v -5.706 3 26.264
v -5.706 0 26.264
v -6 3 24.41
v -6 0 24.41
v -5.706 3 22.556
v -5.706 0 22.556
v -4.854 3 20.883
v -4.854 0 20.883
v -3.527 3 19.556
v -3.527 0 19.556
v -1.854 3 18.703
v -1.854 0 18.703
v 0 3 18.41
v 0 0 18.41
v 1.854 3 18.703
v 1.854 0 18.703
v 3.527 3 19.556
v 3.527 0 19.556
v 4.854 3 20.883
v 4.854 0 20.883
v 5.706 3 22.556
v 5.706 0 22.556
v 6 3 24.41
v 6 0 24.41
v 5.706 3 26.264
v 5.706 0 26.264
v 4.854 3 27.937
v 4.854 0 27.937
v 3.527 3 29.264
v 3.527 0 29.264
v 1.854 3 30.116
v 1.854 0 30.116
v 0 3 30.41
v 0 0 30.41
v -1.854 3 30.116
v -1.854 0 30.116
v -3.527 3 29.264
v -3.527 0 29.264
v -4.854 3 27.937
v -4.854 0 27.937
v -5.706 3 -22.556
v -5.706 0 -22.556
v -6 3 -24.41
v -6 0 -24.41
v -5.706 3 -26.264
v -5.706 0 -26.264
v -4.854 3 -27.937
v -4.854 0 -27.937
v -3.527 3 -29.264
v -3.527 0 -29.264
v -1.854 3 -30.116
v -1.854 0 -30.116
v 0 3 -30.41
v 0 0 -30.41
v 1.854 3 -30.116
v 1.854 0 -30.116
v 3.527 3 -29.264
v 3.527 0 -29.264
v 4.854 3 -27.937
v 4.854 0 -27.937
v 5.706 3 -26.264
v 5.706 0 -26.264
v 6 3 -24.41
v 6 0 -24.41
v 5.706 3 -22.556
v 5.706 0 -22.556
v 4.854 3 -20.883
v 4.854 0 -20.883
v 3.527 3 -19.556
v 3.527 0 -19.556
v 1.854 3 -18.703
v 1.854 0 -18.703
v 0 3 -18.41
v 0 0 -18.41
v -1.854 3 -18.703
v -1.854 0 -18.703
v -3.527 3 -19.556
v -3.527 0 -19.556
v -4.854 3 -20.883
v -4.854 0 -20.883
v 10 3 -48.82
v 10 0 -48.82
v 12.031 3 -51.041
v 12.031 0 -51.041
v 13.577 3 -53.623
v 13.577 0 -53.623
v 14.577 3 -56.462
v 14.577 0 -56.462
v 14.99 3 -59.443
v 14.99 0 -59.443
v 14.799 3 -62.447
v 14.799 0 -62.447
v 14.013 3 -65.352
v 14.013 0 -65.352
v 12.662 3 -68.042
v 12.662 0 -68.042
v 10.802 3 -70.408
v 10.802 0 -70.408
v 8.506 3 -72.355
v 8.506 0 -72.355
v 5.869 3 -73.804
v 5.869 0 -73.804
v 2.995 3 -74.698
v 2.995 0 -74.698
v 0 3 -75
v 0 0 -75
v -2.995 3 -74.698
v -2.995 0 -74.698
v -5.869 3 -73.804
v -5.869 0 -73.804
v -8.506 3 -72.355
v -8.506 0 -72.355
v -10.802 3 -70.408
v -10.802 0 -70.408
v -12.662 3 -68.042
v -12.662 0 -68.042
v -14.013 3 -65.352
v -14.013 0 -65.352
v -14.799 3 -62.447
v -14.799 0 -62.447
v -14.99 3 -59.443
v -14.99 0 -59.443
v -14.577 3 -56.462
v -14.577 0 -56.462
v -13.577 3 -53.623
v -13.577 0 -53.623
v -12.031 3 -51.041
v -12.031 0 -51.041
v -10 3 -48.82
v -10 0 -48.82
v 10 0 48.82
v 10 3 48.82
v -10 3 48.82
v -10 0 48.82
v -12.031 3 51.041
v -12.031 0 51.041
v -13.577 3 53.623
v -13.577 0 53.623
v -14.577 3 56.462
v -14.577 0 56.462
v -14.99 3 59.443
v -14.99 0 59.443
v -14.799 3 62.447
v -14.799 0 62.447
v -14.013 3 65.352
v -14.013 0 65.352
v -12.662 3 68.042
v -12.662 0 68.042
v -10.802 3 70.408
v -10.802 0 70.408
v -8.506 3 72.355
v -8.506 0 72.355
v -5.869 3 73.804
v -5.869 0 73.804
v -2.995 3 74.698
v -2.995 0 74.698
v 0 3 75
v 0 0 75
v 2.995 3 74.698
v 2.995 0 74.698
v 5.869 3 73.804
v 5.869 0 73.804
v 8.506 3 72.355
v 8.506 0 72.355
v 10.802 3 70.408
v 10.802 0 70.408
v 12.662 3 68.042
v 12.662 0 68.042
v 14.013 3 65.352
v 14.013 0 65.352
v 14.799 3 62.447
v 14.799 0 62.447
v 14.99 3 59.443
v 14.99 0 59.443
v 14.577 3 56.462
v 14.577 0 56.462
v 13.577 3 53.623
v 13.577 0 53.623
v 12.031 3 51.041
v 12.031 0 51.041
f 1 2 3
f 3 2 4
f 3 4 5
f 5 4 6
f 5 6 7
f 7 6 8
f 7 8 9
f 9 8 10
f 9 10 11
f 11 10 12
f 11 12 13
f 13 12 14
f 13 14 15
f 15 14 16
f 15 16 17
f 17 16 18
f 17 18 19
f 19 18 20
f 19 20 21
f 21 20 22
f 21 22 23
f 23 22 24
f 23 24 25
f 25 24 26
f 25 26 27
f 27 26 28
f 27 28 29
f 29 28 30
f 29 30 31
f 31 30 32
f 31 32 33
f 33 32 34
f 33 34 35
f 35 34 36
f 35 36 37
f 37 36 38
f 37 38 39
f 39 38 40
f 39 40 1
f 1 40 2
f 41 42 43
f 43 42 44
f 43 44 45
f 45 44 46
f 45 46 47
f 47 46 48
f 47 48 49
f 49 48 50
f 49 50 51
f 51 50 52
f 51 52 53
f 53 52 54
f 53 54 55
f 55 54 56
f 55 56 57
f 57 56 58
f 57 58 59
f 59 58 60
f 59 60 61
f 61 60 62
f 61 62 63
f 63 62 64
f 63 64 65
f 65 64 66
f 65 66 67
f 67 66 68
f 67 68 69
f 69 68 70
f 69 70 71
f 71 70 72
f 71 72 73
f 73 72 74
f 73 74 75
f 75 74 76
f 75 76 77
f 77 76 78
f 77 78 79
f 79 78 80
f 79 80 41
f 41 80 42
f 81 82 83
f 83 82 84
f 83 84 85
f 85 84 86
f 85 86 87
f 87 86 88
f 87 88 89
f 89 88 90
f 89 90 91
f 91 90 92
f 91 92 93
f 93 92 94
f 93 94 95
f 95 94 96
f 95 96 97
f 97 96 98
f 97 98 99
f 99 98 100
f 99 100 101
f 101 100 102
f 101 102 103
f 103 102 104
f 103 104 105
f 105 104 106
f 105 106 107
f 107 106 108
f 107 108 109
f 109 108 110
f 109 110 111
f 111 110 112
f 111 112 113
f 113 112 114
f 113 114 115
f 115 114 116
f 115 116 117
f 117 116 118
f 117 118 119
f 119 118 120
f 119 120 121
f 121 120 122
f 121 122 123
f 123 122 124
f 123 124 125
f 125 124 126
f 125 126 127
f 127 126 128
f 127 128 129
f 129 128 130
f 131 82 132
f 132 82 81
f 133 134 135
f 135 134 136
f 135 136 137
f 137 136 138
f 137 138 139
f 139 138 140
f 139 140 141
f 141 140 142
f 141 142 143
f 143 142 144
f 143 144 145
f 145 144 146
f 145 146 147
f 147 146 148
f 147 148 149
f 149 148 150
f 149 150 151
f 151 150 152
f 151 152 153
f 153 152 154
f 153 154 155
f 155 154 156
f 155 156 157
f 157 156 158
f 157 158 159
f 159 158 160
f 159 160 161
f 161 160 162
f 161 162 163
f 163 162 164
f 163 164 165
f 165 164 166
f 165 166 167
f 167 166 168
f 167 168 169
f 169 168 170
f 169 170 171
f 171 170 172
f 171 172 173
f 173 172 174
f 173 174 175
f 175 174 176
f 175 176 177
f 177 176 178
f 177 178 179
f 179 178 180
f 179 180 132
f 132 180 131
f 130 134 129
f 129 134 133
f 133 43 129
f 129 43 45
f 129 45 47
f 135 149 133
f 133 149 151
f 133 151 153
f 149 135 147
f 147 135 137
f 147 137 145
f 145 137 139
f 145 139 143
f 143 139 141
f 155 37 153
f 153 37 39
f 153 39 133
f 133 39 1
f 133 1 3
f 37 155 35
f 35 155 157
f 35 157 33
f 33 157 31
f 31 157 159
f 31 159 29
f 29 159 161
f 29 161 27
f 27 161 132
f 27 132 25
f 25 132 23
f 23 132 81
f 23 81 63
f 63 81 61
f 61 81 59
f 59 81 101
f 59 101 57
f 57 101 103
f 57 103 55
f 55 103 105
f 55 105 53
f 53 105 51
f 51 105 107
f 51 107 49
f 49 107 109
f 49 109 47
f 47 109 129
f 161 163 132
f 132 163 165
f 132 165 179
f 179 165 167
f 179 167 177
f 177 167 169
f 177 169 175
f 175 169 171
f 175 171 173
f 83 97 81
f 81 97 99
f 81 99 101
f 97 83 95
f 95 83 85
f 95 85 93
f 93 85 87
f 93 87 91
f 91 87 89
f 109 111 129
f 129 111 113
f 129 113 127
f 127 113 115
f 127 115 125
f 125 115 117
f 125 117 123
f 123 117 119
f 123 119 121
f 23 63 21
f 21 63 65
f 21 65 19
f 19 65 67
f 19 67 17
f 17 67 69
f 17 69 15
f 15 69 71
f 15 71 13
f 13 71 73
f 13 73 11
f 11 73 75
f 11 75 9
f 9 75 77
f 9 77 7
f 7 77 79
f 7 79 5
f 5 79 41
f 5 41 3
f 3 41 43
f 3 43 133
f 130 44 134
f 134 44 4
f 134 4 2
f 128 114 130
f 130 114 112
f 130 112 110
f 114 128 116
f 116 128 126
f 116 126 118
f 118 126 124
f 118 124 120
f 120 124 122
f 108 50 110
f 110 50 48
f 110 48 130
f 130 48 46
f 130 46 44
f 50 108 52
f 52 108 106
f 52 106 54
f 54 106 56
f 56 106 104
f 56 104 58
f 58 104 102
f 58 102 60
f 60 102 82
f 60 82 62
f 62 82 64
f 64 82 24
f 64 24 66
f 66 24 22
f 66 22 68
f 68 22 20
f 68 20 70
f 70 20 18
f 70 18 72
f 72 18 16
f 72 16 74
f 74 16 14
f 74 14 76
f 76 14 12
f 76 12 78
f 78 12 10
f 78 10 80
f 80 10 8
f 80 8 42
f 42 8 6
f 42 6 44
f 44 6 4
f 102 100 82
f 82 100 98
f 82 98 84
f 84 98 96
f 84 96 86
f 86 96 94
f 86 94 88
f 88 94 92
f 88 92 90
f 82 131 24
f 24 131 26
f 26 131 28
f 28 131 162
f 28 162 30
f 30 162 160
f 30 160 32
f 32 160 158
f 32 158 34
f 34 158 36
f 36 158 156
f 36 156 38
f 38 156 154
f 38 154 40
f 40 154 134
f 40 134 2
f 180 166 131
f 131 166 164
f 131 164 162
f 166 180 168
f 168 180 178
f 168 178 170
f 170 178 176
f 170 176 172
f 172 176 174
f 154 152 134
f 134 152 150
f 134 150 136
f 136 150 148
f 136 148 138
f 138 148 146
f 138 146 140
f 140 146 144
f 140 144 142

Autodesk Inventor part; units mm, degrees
ref_plane "YZ Plane" through (0, 0, 0) normal (1, 0, 0) x (0, 1, 0)
ref_plane "XZ Plane" through (0, 0, 0) normal (0, 1, 0) x (-1, 0, 0)
ref_plane "XY Plane" through (0, 0, 0) normal (0, 0, 1) x (1, 0, 0)
sketch "Sketch1" plane through (0, 0, 0) normal (0, 1, 0) x (-1, 0, 0)
  line L0 (0, 0) -> (0, 75)
  line L1 (0, 0) -> (0, -75)
  line L2 (0, -75) -> (0, -60)
  circle A0 centre (0, -60) radius 15
  circle A1 centre (0, 60) radius 15
  line L3 (-10, 45) -> (-10, -48.8197)
  line L4 (10, 45) -> (10, -48.8197)
  line L5 (10, 45) -> (10, 48.8197)
  line L6 (-10, 45) -> (-10, 48.8197)
  line L7 (10, 45) -> (-10, 45)
  line L8 (-10, -48.8197) -> (-10, 0)
  line L9 (0, -24.4098) -> (10, -24.4098)
  line L10 (10, 0) -> (0, 0)
  line L11 (0, 24.4098) -> (10, 24.4098)
  line L12 (0, -24.4098) -> (-10, -24.4098)
  line L13 (0, 24.4098) -> (-10, 24.4098)
  circle A2 centre (0, -24.4098) radius 6
  circle A3 centre (0, 24.4098) radius 6
  dimension "d1" = 75
  dimension "d2" = 75
  dimension "d3" = 15
  dimension "d6" = 20
  dimension "d7" = 97.6393
  dimension "d10" = 12
  dimension "d11" = 12
extrude "Extrusion1" add sketch "Sketch1" along normal blind 3 contours L1 A2 L12 L3 L13 A3 L0 | L10 L4 L9 A2 L1 | L0 A3 L11 L4 L10 | L13 L3 L7 L0 A3 | A3 L0 L7 L4 L11 | L9 L4 A0 L1 A2 | A2 L1 A0 L3 L12 | L7 A1 L5 | A0 L1 | A1 L0 | L7 L6 A1 | L0 A1 | L1 A0
properties part number "ramenovaPricka"
